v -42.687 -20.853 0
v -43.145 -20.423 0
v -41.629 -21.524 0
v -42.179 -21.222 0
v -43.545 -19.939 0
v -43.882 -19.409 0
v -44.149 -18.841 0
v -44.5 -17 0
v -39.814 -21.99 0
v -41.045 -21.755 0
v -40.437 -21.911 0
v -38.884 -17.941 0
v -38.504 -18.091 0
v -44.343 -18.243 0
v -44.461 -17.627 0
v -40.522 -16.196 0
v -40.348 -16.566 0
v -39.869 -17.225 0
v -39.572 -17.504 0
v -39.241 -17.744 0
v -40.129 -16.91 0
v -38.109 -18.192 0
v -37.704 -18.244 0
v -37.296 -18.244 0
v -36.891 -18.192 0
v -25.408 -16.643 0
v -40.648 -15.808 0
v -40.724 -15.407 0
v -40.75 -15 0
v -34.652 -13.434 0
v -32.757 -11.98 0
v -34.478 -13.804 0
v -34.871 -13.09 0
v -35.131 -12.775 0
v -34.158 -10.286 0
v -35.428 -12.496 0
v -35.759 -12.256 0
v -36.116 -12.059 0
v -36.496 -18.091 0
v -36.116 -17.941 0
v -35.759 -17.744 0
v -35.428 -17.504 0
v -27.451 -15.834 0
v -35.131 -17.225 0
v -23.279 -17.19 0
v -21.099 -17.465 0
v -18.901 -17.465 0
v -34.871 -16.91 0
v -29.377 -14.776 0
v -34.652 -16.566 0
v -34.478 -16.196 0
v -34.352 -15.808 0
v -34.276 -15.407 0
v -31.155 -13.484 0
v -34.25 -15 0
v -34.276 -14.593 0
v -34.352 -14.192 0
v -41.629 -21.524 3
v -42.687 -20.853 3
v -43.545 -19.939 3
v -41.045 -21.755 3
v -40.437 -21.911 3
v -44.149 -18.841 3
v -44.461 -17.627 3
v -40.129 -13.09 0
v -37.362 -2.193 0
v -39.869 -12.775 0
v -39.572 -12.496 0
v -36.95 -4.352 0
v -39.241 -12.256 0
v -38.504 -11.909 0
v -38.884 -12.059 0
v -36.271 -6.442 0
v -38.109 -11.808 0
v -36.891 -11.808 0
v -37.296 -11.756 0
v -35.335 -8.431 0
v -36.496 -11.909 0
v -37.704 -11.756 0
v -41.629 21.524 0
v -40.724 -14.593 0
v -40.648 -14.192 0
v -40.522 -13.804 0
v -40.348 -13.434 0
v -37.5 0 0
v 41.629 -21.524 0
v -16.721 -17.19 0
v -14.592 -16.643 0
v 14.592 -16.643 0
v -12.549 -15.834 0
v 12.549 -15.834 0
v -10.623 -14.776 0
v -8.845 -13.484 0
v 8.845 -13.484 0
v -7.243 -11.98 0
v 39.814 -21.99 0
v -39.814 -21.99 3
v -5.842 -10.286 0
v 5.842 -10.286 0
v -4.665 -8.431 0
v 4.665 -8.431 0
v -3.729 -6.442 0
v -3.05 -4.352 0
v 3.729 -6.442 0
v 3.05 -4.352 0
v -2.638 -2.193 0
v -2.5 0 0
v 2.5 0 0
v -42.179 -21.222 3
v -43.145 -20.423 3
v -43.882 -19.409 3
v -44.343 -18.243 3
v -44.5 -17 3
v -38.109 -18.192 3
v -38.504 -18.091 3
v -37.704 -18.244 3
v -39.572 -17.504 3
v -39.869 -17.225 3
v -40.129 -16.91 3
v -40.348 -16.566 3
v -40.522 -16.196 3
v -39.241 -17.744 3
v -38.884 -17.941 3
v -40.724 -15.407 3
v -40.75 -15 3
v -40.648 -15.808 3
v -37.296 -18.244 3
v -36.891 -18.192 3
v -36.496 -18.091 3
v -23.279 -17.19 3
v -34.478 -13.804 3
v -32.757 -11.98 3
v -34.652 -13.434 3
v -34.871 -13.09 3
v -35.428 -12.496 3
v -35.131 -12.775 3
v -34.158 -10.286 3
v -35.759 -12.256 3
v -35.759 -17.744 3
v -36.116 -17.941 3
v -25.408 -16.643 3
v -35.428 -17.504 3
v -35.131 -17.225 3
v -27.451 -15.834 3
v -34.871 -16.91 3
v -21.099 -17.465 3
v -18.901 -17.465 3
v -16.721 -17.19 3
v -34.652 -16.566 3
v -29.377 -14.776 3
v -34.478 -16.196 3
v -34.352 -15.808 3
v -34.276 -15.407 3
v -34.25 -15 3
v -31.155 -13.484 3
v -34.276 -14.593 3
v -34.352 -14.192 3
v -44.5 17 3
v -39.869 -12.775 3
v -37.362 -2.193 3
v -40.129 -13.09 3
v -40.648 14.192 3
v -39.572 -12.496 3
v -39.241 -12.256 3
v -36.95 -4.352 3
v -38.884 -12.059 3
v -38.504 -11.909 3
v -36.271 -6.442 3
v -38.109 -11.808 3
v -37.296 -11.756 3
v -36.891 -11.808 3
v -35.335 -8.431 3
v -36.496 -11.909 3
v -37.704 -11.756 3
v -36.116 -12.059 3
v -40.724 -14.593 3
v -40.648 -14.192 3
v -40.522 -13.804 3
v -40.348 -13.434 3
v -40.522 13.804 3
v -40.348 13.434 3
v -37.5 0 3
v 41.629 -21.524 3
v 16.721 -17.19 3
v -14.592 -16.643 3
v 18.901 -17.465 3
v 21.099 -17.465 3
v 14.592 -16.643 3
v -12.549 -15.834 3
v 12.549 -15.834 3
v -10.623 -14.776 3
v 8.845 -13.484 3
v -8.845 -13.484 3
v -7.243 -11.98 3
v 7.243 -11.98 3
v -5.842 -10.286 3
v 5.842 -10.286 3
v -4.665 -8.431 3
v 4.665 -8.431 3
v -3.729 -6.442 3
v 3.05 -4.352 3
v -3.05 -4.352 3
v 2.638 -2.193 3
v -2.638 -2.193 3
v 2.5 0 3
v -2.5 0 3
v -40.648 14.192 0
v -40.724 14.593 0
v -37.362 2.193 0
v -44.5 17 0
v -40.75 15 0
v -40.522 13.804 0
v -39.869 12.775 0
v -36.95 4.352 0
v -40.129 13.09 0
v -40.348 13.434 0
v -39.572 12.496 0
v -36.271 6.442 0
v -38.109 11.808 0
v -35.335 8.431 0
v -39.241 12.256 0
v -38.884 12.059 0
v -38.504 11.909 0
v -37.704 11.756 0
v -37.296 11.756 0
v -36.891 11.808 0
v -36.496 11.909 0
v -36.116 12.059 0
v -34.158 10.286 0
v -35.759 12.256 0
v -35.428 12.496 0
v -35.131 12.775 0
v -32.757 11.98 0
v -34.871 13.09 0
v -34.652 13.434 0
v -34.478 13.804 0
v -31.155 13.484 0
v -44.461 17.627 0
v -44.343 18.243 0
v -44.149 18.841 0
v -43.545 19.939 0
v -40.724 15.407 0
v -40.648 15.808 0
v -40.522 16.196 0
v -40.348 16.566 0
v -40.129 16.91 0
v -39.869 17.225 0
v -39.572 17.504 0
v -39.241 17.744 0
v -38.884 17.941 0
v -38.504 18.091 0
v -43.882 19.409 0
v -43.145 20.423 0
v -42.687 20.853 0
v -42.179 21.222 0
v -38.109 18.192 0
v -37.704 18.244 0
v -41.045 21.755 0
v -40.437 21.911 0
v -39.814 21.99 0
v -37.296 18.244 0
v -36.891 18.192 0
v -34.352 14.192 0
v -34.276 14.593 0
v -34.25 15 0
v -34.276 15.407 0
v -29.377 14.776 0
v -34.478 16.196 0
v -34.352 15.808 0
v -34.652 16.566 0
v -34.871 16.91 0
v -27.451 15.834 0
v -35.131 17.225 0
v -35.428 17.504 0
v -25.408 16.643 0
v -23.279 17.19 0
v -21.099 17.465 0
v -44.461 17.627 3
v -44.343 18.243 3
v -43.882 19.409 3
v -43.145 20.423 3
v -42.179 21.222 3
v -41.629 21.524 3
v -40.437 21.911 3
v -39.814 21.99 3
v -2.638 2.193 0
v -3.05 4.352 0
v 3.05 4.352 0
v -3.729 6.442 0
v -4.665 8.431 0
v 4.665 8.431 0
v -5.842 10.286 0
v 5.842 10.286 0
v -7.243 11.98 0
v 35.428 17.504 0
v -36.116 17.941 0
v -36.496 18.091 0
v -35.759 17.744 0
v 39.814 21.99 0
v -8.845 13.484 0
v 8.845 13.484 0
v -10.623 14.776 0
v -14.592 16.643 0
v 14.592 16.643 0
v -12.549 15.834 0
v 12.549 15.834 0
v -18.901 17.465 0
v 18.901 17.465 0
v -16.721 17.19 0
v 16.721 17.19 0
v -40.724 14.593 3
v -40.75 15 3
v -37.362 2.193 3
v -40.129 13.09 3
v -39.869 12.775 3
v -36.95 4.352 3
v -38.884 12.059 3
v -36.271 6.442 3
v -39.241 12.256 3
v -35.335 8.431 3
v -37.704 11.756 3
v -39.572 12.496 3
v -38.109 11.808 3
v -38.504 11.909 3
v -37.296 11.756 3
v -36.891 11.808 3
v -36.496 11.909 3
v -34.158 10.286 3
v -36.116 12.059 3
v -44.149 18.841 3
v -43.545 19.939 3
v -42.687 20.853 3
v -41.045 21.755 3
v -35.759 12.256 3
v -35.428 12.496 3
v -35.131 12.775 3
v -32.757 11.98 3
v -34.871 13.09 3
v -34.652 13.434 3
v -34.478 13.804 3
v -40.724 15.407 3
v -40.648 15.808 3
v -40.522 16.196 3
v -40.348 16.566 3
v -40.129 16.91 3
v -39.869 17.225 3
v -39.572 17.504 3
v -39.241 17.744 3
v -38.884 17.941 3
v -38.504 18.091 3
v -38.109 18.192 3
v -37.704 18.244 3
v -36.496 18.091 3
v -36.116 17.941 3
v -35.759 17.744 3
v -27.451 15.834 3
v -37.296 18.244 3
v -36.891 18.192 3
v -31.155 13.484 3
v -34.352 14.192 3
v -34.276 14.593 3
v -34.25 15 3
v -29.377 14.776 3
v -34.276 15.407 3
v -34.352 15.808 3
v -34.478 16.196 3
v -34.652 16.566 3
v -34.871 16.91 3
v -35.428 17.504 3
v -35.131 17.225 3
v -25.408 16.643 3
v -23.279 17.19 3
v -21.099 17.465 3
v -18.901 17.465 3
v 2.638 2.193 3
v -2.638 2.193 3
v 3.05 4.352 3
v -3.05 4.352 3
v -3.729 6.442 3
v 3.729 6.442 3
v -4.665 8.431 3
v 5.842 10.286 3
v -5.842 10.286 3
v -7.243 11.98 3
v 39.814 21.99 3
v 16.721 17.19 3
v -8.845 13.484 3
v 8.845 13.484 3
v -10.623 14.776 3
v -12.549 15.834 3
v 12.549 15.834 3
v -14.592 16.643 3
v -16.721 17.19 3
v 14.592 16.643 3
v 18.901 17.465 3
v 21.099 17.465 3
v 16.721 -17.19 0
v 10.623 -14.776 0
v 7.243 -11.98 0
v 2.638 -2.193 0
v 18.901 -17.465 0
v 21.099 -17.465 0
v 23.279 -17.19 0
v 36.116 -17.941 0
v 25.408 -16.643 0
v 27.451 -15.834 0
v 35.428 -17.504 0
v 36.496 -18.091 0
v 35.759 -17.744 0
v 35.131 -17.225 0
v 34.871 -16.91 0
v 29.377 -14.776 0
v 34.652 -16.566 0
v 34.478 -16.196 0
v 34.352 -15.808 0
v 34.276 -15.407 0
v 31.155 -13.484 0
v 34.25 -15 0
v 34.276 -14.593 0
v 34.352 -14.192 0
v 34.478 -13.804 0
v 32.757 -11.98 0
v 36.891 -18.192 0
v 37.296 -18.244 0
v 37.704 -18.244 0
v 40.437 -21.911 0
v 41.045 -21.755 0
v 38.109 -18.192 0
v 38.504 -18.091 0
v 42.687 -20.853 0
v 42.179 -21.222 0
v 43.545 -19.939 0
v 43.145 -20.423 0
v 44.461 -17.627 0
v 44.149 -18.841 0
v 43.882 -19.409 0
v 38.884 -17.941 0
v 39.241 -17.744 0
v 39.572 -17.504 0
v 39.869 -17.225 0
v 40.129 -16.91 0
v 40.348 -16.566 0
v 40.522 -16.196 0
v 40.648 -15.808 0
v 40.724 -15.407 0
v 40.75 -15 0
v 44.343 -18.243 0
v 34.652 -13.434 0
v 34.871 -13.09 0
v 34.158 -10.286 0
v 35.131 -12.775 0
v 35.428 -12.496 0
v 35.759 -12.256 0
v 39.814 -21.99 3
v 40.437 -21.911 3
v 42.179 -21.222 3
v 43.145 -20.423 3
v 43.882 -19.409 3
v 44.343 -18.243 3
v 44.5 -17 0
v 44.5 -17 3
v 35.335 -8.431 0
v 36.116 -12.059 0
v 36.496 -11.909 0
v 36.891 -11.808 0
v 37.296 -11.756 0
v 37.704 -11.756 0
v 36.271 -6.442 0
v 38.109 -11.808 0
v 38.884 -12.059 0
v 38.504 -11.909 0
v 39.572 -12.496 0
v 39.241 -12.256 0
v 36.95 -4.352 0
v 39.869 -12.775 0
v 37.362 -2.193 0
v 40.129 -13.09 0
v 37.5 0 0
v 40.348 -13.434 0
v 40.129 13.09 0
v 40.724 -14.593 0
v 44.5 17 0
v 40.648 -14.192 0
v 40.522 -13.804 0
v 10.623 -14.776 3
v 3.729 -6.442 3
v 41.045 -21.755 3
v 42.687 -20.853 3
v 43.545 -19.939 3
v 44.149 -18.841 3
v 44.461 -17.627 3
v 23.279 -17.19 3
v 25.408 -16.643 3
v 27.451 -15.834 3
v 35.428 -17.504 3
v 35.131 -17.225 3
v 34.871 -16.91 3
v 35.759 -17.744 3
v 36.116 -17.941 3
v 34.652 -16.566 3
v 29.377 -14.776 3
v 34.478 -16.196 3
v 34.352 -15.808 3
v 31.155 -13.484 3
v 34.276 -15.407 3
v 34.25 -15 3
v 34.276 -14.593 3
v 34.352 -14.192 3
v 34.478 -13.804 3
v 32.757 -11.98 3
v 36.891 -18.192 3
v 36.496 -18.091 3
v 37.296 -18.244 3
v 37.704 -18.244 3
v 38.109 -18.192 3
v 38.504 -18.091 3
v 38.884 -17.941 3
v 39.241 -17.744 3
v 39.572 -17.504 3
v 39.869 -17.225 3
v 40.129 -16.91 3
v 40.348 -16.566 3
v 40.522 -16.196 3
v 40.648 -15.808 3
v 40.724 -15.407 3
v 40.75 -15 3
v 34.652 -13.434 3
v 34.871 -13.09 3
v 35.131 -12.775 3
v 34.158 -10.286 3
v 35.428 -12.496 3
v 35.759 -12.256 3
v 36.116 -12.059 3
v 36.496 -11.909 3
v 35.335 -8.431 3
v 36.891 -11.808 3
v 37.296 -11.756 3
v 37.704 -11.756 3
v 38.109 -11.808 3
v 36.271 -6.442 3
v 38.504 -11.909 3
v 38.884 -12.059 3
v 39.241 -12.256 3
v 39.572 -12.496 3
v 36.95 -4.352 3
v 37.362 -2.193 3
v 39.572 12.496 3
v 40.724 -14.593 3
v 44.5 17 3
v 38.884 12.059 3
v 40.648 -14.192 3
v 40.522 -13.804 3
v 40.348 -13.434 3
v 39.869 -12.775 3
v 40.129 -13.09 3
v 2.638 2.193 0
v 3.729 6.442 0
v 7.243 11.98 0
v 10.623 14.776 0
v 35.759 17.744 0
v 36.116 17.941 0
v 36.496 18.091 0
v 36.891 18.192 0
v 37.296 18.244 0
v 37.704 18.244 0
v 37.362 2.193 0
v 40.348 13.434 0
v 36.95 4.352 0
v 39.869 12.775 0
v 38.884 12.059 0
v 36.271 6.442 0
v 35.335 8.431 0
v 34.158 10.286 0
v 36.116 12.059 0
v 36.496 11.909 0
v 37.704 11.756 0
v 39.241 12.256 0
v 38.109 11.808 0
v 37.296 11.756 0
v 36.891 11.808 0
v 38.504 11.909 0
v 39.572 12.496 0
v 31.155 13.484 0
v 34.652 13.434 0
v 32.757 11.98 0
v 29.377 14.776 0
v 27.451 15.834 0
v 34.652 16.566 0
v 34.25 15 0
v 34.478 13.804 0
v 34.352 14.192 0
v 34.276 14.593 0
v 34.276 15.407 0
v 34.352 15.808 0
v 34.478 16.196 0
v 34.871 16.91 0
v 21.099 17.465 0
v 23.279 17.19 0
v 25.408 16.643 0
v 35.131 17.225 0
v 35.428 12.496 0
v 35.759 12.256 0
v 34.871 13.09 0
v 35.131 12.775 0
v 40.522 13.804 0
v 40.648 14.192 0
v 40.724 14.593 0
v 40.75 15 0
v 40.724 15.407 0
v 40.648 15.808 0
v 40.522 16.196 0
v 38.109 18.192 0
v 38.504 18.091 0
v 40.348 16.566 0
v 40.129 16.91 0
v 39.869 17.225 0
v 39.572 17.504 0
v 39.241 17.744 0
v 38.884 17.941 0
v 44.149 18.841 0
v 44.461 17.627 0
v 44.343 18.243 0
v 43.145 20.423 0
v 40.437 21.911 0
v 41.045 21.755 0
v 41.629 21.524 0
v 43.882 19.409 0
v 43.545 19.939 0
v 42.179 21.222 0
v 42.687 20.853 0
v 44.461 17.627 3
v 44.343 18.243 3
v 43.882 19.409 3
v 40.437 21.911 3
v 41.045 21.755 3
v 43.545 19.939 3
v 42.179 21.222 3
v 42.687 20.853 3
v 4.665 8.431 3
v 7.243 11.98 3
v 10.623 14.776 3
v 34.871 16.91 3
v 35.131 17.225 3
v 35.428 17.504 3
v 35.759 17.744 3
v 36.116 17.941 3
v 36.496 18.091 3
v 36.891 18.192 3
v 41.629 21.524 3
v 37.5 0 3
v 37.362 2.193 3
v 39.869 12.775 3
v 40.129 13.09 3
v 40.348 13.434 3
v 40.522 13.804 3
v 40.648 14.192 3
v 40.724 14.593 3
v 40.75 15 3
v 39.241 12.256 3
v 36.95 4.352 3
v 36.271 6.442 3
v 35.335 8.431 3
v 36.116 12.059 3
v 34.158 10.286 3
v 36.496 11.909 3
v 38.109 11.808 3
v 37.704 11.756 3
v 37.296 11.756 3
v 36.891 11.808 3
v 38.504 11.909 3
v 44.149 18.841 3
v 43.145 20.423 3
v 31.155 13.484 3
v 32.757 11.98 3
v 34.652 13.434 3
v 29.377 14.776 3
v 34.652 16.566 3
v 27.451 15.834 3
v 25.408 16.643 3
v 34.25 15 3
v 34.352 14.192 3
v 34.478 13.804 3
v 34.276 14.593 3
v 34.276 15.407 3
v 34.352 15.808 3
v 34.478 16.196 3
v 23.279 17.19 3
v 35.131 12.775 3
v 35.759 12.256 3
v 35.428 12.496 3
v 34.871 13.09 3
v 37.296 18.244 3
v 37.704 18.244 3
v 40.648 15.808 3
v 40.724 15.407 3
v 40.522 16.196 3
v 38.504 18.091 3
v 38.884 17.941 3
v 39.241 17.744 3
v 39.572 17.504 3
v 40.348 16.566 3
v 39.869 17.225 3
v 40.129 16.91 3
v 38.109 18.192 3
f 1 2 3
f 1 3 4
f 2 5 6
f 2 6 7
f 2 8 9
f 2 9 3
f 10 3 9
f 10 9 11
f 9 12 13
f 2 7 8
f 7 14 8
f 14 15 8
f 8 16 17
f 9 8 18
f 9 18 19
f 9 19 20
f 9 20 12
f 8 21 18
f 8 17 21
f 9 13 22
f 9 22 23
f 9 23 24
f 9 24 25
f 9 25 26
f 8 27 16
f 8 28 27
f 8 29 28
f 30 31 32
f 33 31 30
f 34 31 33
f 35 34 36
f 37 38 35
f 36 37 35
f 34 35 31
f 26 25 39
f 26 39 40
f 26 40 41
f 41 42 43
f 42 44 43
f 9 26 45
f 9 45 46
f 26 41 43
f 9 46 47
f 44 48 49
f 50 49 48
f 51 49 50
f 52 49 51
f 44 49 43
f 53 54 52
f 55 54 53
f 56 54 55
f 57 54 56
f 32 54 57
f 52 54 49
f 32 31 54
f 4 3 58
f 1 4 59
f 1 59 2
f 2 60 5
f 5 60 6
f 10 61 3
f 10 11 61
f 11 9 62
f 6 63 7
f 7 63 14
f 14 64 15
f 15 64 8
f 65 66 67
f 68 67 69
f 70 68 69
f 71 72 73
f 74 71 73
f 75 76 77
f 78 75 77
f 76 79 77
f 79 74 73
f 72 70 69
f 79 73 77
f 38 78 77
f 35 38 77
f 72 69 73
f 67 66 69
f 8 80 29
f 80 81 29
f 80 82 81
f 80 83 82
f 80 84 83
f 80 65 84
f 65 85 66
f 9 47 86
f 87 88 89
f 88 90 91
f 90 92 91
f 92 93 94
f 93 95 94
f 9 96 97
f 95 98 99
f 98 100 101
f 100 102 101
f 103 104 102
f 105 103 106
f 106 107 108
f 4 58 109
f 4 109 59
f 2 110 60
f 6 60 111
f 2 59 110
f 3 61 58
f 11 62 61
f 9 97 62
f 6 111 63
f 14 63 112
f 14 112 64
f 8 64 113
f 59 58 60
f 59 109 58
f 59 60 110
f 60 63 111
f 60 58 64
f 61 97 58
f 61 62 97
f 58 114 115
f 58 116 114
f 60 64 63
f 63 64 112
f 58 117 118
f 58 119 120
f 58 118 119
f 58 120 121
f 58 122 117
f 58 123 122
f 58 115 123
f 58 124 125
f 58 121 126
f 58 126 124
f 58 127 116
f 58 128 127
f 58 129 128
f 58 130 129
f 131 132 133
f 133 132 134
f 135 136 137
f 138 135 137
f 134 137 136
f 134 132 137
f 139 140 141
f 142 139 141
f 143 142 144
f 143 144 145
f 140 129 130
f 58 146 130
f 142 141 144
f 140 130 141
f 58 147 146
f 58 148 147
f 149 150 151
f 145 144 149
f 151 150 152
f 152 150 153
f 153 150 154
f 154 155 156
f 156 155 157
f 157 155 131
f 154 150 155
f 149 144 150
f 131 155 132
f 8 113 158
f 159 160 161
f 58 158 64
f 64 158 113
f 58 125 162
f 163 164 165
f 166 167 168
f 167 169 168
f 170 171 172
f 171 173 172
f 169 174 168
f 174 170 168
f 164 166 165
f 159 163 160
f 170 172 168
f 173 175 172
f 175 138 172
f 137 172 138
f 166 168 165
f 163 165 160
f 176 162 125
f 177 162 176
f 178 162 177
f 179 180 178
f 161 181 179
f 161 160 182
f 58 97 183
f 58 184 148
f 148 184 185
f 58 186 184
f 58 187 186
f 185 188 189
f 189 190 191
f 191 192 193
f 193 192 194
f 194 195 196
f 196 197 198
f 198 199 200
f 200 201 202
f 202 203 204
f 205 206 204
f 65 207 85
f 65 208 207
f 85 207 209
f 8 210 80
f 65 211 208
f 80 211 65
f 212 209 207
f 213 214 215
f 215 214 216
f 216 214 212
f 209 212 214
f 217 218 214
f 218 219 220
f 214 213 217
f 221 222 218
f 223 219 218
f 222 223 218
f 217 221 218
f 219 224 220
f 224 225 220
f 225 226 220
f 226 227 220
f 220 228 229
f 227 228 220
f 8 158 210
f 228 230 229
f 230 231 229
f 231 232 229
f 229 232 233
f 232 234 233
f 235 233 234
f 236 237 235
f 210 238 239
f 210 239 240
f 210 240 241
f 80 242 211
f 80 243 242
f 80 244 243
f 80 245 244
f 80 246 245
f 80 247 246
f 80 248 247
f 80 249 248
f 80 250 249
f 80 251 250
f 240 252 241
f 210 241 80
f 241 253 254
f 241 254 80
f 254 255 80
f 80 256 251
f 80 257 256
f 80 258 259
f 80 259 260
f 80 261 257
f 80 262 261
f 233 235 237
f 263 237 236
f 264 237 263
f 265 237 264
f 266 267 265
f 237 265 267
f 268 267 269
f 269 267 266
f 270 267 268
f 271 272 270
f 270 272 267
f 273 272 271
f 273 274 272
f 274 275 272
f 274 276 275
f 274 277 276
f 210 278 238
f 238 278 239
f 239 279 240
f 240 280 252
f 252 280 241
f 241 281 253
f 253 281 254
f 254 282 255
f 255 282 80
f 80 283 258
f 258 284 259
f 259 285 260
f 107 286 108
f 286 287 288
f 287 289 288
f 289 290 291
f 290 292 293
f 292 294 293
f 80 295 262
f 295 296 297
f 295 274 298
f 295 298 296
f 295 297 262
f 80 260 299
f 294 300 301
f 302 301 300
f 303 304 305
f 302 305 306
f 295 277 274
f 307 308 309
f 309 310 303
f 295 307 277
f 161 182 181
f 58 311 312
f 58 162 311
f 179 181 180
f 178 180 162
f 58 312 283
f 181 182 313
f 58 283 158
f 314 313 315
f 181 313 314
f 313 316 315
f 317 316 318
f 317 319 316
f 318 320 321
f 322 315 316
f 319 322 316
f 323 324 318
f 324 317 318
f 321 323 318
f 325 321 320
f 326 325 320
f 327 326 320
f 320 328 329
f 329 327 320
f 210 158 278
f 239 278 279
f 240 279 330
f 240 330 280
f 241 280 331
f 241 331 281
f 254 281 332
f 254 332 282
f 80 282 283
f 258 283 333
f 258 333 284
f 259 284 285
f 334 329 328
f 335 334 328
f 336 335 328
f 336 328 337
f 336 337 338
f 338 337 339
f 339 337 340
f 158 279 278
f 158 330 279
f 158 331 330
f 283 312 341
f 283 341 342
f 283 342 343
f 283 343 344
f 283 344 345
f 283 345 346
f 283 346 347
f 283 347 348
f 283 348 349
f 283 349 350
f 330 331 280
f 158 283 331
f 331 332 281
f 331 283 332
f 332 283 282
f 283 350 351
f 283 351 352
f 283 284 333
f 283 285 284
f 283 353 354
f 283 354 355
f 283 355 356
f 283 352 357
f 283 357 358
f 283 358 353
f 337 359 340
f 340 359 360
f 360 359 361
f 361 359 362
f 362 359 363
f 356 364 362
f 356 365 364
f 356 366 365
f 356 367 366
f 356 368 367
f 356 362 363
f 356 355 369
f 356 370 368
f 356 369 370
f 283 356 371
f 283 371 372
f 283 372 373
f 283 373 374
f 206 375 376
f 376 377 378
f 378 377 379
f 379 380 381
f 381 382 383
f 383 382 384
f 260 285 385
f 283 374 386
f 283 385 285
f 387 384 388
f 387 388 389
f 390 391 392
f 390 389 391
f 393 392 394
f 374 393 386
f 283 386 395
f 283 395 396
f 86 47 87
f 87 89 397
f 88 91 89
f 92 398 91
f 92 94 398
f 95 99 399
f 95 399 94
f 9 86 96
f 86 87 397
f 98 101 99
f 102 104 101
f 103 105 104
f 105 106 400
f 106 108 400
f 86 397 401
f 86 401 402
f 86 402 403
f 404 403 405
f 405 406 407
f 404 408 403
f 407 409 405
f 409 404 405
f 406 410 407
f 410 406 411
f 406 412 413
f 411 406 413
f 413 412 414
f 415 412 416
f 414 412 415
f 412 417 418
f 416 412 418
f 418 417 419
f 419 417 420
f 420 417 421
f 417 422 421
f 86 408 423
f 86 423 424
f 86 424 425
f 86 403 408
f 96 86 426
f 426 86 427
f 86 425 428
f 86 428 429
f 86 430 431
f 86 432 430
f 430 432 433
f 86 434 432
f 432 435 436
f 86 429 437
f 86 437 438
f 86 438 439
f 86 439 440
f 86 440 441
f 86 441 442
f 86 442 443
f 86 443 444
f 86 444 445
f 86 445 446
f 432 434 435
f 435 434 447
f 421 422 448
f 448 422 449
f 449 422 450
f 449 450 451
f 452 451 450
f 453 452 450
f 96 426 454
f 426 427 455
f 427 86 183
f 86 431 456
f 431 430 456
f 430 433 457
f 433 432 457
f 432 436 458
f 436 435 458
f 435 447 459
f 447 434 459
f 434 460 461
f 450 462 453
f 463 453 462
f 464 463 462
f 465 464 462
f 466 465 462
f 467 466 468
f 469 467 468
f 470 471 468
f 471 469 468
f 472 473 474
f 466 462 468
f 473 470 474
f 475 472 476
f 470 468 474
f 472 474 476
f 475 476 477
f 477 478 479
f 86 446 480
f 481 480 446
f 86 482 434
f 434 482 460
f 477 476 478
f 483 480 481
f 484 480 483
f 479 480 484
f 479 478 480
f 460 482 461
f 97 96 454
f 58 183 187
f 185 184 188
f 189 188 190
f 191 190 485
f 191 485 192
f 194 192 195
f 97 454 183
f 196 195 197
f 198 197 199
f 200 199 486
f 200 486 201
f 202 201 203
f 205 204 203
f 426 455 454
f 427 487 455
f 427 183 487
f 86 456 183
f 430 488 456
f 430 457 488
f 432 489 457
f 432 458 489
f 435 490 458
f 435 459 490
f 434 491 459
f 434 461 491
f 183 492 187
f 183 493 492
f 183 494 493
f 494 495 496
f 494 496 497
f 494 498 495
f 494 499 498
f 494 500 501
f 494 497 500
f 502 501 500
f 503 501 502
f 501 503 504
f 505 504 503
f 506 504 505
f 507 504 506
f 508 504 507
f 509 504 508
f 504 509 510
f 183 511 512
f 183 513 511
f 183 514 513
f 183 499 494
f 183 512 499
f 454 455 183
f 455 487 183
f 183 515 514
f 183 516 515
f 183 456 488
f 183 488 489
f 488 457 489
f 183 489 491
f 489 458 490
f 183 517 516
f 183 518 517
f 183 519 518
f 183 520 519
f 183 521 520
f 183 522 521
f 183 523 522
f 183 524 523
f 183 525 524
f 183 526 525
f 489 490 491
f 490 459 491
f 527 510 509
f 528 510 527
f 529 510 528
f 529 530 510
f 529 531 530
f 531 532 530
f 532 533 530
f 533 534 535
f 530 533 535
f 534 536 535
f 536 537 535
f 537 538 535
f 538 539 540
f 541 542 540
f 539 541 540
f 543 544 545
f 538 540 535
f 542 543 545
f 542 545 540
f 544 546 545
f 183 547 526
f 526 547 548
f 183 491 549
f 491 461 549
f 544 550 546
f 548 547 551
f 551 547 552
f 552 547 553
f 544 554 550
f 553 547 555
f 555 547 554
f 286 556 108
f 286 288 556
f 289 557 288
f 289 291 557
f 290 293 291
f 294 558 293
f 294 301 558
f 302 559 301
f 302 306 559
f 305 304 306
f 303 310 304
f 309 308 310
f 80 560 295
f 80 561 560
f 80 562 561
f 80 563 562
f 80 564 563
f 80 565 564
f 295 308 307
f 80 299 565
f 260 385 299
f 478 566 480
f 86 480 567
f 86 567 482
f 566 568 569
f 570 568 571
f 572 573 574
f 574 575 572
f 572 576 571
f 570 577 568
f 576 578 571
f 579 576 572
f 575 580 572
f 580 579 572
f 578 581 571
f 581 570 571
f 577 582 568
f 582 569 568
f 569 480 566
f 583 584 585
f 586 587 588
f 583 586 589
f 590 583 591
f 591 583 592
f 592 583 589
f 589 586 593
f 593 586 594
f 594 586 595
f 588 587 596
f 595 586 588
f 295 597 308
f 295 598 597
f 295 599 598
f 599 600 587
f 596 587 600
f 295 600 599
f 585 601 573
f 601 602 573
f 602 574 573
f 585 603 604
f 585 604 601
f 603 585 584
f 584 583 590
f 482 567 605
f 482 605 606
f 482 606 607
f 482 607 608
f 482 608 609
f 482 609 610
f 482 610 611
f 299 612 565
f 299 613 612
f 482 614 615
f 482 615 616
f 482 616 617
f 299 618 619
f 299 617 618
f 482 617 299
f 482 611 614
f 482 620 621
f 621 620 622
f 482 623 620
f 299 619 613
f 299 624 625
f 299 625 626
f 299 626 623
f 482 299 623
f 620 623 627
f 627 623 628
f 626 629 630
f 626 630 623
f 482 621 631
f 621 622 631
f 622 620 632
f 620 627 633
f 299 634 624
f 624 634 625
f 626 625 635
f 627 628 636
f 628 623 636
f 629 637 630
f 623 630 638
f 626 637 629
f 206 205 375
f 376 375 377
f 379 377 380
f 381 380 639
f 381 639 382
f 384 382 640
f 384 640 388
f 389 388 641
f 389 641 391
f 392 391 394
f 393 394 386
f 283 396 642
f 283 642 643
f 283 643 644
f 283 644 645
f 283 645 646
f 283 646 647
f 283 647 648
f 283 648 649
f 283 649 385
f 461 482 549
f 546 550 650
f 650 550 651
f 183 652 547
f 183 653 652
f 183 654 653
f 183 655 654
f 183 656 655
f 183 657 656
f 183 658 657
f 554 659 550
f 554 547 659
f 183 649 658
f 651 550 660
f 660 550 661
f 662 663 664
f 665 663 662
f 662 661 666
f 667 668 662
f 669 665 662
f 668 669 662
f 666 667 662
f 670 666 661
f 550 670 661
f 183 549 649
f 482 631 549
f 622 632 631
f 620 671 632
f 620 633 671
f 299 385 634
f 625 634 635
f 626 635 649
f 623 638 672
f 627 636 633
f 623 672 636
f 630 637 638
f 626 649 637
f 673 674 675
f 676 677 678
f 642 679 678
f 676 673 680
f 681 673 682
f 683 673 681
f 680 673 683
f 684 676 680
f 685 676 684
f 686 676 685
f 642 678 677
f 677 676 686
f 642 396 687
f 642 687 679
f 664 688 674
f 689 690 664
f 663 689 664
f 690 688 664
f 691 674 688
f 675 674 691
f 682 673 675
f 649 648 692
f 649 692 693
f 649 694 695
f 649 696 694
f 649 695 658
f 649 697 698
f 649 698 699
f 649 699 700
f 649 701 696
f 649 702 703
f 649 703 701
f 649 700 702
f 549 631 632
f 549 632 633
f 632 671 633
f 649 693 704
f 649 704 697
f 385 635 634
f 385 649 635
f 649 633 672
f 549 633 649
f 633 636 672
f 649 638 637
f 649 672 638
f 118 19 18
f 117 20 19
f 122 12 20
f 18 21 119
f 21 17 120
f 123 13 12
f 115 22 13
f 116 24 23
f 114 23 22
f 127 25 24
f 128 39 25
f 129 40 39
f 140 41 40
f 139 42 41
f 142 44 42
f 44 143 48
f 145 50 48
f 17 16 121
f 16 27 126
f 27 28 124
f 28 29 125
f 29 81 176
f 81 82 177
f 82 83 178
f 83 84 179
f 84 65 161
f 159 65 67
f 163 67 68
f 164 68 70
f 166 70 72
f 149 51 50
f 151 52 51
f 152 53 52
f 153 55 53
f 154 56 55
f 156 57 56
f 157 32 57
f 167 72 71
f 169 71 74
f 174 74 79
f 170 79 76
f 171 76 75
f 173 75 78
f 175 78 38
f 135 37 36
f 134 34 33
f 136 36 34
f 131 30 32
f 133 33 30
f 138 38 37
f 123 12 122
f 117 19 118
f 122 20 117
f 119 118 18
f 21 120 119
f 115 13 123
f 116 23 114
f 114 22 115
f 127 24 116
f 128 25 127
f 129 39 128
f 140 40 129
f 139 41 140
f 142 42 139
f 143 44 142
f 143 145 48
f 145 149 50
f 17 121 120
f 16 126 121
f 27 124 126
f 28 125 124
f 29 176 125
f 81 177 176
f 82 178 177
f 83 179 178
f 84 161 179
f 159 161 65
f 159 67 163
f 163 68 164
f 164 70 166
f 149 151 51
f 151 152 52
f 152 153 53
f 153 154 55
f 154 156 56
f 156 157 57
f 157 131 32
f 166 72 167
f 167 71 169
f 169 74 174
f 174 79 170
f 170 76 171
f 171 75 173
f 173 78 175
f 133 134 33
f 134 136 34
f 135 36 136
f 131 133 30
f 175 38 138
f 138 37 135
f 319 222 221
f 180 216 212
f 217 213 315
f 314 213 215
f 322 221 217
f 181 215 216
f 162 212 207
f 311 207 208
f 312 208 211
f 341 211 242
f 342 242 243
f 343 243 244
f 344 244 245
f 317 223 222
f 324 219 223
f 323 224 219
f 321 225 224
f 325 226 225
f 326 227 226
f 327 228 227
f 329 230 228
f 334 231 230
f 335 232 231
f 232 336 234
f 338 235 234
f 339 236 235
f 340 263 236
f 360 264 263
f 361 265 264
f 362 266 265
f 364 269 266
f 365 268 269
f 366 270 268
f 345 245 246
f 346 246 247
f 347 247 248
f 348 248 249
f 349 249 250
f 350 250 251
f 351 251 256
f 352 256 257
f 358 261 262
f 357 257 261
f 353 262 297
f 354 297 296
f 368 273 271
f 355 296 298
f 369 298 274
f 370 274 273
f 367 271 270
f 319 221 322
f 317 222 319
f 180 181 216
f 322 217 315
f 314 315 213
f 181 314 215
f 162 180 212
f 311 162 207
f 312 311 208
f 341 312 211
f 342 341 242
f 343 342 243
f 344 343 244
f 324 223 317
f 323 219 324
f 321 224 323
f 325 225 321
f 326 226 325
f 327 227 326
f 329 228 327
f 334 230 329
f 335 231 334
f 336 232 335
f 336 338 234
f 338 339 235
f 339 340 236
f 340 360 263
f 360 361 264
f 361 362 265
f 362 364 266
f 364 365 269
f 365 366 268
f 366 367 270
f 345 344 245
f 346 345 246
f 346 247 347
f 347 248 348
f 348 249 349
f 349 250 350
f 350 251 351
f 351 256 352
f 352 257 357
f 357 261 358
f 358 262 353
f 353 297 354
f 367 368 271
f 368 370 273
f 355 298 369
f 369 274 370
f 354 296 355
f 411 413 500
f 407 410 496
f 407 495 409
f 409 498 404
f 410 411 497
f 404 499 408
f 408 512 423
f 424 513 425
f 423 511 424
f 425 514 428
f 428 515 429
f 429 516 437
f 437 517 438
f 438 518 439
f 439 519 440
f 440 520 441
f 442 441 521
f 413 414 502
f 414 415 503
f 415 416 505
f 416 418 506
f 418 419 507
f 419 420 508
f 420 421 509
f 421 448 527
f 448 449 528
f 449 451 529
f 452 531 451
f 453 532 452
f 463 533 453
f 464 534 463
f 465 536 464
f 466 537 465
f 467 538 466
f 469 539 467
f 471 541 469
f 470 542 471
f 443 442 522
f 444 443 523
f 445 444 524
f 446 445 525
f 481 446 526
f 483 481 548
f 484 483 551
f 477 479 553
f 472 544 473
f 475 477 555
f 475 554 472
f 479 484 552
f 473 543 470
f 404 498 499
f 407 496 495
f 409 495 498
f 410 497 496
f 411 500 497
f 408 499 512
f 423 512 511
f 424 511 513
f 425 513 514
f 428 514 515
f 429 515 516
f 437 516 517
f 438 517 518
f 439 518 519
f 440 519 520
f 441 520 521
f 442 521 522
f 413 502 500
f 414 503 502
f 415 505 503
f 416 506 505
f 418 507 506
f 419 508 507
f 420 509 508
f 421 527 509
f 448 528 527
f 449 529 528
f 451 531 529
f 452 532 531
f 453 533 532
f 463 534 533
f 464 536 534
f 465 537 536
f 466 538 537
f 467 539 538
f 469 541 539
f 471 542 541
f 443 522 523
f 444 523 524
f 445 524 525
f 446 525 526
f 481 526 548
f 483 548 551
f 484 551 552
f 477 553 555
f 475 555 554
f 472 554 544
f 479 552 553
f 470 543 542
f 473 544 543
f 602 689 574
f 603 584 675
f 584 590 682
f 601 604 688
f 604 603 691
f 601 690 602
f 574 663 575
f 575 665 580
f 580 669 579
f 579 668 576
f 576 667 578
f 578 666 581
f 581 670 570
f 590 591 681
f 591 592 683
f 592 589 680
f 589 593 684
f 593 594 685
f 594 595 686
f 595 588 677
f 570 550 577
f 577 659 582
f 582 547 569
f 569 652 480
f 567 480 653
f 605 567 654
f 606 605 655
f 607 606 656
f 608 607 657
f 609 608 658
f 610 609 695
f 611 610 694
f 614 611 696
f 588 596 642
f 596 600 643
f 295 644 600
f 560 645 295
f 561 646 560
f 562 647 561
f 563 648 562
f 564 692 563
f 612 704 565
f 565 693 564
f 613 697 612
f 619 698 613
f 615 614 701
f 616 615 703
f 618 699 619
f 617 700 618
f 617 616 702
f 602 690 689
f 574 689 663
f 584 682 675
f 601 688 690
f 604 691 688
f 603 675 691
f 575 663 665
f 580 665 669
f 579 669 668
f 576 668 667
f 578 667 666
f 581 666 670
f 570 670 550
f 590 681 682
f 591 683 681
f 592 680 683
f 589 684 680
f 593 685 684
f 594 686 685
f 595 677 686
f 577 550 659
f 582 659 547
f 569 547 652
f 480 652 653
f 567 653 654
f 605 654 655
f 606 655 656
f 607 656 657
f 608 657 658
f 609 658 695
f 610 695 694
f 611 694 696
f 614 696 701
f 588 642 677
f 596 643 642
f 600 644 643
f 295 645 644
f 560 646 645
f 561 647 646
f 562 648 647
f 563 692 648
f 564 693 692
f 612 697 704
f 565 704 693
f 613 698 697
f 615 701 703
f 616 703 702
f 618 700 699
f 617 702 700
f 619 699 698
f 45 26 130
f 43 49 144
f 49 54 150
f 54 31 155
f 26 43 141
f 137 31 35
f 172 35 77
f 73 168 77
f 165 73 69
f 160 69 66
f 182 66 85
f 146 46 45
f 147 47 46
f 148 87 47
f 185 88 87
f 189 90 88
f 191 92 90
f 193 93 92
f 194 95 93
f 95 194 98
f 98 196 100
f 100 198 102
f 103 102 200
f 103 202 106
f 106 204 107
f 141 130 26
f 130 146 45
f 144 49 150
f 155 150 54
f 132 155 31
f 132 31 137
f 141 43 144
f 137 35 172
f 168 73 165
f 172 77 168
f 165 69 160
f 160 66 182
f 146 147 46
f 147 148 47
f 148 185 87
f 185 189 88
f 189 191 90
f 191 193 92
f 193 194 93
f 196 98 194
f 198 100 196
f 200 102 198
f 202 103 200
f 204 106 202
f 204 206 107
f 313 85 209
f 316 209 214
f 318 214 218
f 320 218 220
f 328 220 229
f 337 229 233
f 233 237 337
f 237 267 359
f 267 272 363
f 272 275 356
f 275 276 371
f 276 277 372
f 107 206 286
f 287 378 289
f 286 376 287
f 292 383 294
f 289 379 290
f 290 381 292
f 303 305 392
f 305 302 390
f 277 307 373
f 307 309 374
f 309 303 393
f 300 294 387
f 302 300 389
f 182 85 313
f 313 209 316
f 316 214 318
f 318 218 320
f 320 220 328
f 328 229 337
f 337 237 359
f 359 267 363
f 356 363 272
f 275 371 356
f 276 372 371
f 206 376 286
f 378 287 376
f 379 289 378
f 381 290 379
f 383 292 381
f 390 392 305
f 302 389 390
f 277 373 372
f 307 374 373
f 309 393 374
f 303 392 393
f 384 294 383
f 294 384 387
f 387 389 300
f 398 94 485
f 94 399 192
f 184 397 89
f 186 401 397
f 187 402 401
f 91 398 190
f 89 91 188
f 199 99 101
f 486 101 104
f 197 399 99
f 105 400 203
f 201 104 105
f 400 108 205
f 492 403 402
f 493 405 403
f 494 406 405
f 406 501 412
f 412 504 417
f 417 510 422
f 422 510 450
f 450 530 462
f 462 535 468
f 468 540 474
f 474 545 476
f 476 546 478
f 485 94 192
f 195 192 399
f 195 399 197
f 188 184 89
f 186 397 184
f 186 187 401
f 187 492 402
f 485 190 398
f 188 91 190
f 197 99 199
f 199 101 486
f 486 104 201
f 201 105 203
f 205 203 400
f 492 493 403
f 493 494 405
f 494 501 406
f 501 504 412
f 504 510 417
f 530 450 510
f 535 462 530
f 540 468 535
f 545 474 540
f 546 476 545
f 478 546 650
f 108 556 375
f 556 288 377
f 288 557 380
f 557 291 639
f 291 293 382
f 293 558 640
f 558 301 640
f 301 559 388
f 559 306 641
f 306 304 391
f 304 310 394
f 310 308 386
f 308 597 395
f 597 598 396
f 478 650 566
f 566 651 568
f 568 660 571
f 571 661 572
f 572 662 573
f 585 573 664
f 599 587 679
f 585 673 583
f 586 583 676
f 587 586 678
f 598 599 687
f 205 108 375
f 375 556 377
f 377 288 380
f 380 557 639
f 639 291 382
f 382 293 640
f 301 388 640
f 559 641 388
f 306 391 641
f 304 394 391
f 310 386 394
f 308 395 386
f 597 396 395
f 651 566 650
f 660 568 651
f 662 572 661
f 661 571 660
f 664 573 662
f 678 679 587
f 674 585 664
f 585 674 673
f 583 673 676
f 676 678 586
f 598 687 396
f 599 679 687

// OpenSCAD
$fn = 50;

difference() {
	union() {
		hull() {
			translate(v = [-39.5, 17.0, 0]) {
				cylinder(h = 3, r = 5);
			}
			translate(v = [39.5, 17.0, 0]) {
				cylinder(h = 3, r = 5);
			}
			translate(v = [-39.5, -17.0, 0]) {
				cylinder(h = 3, r = 5);
			}
			translate(v = [39.5, -17.0, 0]) {
				cylinder(h = 3, r = 5);
			}
		}
	}
	union() {
		translate(v = [-37.5, -15.0, -100.0]) {
			cylinder(h = 200, r = 3.25);
		}
		translate(v = [-37.5, 15.0, -100.0]) {
			cylinder(h = 200, r = 3.25);
		}
		translate(v = [37.5, -15.0, -100.0]) {
			cylinder(h = 200, r = 3.25);
		}
		translate(v = [37.5, 15.0, -100.0]) {
			cylinder(h = 200, r = 3.25);
		}
		translate(v = [-37.5, -15.0, -100.0]) {
			cylinder(h = 200, r = 1.8);
		}
		translate(v = [-37.5, 15.0, -100.0]) {
			cylinder(h = 200, r = 1.8);
		}
		translate(v = [37.5, -15.0, -100.0]) {
			cylinder(h = 200, r = 1.8);
		}
		translate(v = [37.5, 15.0, -100.0]) {
			cylinder(h = 200, r = 1.8);
		}
		translate(v = [-20.0, 0, 0.0]) {
			cylinder(h = 3, r = 17.5);
		}
		translate(v = [20.0, 0, 0.0]) {
			cylinder(h = 3, r = 17.5);
		}
	}
}
